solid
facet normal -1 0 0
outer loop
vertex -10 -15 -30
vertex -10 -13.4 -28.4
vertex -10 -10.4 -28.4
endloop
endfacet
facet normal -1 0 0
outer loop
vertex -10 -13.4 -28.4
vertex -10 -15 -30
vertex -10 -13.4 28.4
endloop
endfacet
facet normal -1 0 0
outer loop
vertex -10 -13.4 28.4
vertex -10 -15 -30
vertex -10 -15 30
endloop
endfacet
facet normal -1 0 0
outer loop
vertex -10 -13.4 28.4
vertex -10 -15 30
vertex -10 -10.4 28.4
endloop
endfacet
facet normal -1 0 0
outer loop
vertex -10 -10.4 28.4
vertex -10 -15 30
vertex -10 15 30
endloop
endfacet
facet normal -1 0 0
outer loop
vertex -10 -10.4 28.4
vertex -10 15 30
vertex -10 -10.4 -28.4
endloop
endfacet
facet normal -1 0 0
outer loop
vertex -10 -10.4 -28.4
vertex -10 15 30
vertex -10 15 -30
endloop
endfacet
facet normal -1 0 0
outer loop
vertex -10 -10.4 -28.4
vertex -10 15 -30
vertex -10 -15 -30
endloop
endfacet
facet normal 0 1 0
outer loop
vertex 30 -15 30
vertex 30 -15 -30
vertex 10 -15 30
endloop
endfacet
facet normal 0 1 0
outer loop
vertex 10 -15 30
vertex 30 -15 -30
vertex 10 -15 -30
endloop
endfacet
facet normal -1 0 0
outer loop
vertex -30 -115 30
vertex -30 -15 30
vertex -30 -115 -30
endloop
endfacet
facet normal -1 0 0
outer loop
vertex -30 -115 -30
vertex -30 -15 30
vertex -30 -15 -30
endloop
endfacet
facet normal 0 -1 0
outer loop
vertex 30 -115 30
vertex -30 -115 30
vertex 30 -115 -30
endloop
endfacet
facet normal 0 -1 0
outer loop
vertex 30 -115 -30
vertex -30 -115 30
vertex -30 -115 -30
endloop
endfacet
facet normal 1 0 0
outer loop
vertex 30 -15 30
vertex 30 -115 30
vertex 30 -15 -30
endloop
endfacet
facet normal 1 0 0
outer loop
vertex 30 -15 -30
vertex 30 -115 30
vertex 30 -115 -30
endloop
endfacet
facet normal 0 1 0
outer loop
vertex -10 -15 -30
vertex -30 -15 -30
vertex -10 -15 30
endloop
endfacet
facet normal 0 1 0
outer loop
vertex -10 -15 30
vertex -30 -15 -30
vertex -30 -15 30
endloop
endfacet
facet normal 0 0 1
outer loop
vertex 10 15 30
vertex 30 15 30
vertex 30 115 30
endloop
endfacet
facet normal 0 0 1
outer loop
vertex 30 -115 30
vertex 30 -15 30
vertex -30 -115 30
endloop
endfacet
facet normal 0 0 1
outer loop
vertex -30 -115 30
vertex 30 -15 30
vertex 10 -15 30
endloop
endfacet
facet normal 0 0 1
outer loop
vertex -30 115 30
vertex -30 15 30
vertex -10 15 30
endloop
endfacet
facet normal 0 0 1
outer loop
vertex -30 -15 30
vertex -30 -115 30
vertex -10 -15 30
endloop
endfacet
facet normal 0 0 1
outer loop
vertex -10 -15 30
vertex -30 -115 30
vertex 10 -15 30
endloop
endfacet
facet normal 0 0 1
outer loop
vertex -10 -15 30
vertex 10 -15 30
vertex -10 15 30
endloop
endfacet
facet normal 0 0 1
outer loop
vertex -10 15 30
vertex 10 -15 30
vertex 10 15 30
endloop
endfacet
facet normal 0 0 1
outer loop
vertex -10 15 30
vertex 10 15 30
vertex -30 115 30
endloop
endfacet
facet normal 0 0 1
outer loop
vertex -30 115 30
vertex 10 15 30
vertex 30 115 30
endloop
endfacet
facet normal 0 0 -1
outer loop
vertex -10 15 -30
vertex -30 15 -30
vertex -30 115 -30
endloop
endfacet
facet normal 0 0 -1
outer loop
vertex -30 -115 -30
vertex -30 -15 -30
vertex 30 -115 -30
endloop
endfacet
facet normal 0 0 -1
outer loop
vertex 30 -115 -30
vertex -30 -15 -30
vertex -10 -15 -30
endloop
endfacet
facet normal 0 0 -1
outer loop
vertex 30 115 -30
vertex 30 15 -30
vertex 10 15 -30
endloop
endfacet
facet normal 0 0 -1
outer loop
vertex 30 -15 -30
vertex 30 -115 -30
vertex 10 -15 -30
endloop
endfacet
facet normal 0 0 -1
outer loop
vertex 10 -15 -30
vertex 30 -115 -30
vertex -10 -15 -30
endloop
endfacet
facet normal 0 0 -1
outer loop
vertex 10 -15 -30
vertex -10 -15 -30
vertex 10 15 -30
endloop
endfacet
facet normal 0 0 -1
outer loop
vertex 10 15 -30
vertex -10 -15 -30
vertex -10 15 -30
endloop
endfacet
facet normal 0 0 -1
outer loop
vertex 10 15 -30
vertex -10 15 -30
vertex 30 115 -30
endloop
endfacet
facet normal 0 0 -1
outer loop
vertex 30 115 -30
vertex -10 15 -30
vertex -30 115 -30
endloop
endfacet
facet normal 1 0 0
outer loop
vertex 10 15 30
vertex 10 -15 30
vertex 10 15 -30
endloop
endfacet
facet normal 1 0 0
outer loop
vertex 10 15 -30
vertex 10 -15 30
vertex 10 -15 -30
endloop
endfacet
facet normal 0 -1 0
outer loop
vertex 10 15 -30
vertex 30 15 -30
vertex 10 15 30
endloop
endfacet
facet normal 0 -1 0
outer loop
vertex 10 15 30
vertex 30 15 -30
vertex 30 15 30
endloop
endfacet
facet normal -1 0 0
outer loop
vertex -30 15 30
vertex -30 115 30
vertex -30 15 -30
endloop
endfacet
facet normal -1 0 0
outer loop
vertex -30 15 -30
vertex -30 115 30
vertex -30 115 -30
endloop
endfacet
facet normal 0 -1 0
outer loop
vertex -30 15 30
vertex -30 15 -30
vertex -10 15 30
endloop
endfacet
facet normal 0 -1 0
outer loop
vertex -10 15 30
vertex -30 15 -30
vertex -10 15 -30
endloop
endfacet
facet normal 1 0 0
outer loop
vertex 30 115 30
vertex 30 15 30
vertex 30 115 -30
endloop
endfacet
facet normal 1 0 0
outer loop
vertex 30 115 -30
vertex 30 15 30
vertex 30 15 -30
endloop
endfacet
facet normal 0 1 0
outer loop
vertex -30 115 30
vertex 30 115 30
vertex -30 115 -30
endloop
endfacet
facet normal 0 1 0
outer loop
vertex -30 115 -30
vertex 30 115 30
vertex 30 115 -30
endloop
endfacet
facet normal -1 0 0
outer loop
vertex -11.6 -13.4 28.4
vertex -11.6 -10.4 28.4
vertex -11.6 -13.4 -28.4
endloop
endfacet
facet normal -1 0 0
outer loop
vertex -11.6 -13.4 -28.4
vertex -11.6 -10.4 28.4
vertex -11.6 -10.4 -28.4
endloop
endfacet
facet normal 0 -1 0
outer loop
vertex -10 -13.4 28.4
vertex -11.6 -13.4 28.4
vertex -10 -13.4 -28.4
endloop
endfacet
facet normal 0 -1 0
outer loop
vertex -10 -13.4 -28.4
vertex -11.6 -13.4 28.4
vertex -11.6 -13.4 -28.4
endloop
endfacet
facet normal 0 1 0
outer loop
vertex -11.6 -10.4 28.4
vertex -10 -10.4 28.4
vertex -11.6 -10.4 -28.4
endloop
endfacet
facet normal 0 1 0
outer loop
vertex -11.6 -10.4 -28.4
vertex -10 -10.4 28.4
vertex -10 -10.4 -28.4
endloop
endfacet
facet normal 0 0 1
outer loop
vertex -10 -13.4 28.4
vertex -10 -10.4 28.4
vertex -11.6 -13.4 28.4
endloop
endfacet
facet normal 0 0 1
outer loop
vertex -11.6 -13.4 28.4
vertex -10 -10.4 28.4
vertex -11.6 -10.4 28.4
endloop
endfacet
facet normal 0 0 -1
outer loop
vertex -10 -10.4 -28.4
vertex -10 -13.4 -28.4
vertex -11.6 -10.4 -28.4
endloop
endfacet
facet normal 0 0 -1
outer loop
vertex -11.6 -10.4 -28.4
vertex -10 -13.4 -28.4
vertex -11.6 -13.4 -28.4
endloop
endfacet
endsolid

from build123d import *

# Parameters (mm, degrees)
SKETCH1_W           = 60
SKETCH1_H           = 100
BOSS_EXTRUDE1_DEPTH = 30
SKETCH2_W           = 60
SKETCH2_H           = 100
BOSS_EXTRUDE2_DEPTH = 30
SKETCH3_W           = 20
SKETCH3_H           = 30
BOSS_EXTRUDE3_DEPTH = 30
SKETCH4_W           = 1.6
SKETCH4_H           = 3
BOSS_EXTRUDE4_DEPTH = 28.4


with BuildPart() as part:
    # Sketch1 → Boss-Extrude1 (new, symmetric)
    with BuildSketch(Plane.XY):
        with Locations((0, -65)):
            Rectangle(SKETCH1_W, SKETCH1_H)
    extrude(amount=BOSS_EXTRUDE1_DEPTH, both=True)



with BuildPart() as body_2:
    # Sketch2 → Boss-Extrude2 (new, symmetric)
    with BuildSketch(Plane.XY):
        with Locations((0, 65)):
            Rectangle(SKETCH2_W, SKETCH2_H)
    extrude(amount=BOSS_EXTRUDE2_DEPTH, both=True)


with BuildPart() as part_1:
    add(part.part)

    add(body_2.part)  # Boss-Extrude3 merges body 2
    # Sketch3 → Boss-Extrude3 (add, symmetric)
    with BuildSketch(Plane.XY):
        Rectangle(SKETCH3_W, SKETCH3_H)
    extrude(amount=BOSS_EXTRUDE3_DEPTH, both=True)

    # Sketch4 → Boss-Extrude4 (add, symmetric)
    with BuildSketch(Plane.XY):
        with Locations((-10.8, -11.9)):
            Rectangle(SKETCH4_W, SKETCH4_H)
    extrude(amount=BOSS_EXTRUDE4_DEPTH, both=True)


solid = part_1.part
